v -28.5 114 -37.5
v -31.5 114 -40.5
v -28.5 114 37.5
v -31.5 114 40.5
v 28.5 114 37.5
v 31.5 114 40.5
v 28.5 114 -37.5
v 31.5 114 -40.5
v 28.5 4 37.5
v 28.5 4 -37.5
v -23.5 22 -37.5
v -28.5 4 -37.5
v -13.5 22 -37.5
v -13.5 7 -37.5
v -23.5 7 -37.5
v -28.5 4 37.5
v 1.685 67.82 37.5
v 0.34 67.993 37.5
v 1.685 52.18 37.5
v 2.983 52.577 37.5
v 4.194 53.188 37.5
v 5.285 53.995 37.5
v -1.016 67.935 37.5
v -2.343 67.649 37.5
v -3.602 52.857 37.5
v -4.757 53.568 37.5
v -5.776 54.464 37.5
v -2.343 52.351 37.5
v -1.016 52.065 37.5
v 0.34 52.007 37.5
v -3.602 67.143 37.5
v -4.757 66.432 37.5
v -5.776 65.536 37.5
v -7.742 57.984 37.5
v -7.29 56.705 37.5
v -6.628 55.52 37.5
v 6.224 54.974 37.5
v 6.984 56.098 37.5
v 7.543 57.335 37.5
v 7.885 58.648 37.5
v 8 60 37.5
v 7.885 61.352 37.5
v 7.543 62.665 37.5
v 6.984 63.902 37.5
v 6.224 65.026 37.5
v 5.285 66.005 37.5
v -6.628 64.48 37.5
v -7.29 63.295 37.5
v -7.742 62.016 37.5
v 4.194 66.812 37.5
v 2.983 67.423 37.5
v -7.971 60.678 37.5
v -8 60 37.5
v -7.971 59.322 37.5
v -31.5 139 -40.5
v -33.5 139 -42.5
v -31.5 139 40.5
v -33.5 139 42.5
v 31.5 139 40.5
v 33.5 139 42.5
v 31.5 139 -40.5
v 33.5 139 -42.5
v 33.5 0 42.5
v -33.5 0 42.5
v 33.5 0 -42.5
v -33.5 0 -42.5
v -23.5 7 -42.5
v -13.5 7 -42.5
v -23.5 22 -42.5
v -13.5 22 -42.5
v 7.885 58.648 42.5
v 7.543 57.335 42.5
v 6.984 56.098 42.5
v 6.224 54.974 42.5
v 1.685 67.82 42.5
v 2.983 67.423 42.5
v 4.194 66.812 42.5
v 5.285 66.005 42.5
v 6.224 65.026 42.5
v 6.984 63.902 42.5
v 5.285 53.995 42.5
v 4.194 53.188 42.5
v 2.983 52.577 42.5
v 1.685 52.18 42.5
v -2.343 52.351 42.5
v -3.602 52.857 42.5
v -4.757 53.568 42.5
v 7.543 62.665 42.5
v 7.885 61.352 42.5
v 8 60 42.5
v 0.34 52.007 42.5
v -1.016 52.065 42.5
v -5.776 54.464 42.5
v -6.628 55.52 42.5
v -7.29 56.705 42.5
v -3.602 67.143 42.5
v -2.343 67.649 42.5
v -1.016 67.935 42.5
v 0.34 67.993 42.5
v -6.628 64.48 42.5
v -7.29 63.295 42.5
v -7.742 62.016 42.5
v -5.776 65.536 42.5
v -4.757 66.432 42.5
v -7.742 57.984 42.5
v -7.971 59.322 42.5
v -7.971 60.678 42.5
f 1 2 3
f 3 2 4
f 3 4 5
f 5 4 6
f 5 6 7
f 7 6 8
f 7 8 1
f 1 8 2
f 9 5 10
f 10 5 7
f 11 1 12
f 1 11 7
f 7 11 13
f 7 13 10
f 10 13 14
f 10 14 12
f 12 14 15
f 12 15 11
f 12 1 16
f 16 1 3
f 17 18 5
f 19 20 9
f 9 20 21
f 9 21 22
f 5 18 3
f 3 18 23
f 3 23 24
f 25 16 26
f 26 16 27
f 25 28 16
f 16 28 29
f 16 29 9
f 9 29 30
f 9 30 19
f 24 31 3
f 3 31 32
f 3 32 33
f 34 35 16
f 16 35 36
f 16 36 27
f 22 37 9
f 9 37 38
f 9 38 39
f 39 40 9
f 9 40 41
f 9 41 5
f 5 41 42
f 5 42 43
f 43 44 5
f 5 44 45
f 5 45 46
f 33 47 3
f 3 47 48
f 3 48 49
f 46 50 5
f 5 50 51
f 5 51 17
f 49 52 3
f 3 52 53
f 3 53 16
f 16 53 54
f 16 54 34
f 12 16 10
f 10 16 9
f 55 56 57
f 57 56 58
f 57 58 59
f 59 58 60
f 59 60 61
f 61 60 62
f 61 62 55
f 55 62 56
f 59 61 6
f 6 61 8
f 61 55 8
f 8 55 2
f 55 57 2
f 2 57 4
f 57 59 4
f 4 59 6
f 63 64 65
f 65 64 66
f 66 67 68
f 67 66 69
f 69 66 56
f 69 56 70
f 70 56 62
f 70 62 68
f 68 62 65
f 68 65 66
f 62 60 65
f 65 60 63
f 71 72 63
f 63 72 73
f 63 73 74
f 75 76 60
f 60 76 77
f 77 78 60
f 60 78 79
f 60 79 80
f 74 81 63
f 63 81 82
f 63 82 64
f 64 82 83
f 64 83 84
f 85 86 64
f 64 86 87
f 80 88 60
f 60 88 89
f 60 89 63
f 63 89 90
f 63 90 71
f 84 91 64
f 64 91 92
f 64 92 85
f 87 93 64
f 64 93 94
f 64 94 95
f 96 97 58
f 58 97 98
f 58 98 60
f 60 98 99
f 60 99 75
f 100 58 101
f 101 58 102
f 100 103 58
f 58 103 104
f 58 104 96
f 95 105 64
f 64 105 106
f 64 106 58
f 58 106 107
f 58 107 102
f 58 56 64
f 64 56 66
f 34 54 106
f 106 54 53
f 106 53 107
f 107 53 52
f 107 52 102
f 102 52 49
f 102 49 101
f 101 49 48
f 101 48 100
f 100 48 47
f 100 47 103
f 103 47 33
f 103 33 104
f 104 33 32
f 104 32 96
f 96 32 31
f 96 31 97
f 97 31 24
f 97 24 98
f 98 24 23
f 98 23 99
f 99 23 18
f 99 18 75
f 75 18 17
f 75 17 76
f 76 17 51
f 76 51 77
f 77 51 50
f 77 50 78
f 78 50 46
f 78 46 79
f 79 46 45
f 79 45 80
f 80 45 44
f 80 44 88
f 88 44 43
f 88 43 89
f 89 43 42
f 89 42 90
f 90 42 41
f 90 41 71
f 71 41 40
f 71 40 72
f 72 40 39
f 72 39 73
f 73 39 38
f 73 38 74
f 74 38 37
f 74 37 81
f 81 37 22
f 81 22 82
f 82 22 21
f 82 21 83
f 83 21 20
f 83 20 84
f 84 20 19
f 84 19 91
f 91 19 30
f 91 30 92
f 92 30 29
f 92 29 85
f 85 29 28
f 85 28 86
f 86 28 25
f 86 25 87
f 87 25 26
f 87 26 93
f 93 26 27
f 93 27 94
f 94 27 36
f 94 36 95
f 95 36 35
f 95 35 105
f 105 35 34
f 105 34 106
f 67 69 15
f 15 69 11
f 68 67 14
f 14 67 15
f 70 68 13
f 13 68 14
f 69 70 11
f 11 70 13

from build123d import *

# Parameters (mm, degrees)
SKETCH2_W           = 67
SKETCH2_H           = 85
BOSS_EXTRUDE1_DEPTH = 4
SKETCH2_3_W         = 67
SKETCH2_3_H         = 85
SKETCH2_3_W_2       = 57
SKETCH2_3_H_2       = 75
BOSS_EXTRUDE2_DEPTH = 114
SKETCH4_W           = 67
SKETCH4_H           = 85
SKETCH4_W_2         = 63
SKETCH4_H_2         = 81
BOSS_EXTRUDE3_DEPTH = 25
SKETCH6_R           = 8
CUT_EXTRUDE1_DEPTH  = 25
SKETCH5_W           = 10
SKETCH5_H           = 15
CUT_EXTRUDE2_DEPTH  = 25


with BuildPart() as part:
    # Sketch2 → Boss-Extrude1 (new body)
    with BuildSketch(Plane(origin=(0, 0, 0), x_dir=(1, 0, 0), z_dir=(0, 1, 0))):
        Rectangle(SKETCH2_W, SKETCH2_H)
    extrude(amount=BOSS_EXTRUDE1_DEPTH)

    # Sketch2<3> → Boss-Extrude2 (add)
    with BuildSketch(Plane(origin=(0, 0, 0), x_dir=(1, 0, 0), z_dir=(0, 1, 0))):
        Rectangle(SKETCH2_3_W, SKETCH2_3_H)
        Rectangle(SKETCH2_3_W_2, SKETCH2_3_H_2, mode=Mode.SUBTRACT)
    extrude(amount=BOSS_EXTRUDE2_DEPTH)

    # Sketch4 → Boss-Extrude3 (add)
    with BuildSketch(Plane(origin=(0, 114, 0), x_dir=(1, 0, 0), z_dir=(0, 1, 0))):
        Rectangle(SKETCH4_W, SKETCH4_H)
        Rectangle(SKETCH4_W_2, SKETCH4_H_2, mode=Mode.SUBTRACT)
    extrude(amount=BOSS_EXTRUDE3_DEPTH)

    # Sketch6 → Cut-Extrude1 (cut)
    with BuildSketch(Plane.XY.offset(42.5)):
        with Locations((0, 60)):
            Circle(SKETCH6_R)
    extrude(amount=-CUT_EXTRUDE1_DEPTH, mode=Mode.SUBTRACT)

    # Sketch5 → Cut-Extrude2 (cut)
    with BuildSketch(Plane(origin=(0, 0, -42.5), x_dir=(-1, 0, 0), z_dir=(0, 0, -1))):
        with Locations((18.5, 14.5)):
            Rectangle(SKETCH5_W, SKETCH5_H)
    extrude(amount=-CUT_EXTRUDE2_DEPTH, mode=Mode.SUBTRACT)


solid = part.part
